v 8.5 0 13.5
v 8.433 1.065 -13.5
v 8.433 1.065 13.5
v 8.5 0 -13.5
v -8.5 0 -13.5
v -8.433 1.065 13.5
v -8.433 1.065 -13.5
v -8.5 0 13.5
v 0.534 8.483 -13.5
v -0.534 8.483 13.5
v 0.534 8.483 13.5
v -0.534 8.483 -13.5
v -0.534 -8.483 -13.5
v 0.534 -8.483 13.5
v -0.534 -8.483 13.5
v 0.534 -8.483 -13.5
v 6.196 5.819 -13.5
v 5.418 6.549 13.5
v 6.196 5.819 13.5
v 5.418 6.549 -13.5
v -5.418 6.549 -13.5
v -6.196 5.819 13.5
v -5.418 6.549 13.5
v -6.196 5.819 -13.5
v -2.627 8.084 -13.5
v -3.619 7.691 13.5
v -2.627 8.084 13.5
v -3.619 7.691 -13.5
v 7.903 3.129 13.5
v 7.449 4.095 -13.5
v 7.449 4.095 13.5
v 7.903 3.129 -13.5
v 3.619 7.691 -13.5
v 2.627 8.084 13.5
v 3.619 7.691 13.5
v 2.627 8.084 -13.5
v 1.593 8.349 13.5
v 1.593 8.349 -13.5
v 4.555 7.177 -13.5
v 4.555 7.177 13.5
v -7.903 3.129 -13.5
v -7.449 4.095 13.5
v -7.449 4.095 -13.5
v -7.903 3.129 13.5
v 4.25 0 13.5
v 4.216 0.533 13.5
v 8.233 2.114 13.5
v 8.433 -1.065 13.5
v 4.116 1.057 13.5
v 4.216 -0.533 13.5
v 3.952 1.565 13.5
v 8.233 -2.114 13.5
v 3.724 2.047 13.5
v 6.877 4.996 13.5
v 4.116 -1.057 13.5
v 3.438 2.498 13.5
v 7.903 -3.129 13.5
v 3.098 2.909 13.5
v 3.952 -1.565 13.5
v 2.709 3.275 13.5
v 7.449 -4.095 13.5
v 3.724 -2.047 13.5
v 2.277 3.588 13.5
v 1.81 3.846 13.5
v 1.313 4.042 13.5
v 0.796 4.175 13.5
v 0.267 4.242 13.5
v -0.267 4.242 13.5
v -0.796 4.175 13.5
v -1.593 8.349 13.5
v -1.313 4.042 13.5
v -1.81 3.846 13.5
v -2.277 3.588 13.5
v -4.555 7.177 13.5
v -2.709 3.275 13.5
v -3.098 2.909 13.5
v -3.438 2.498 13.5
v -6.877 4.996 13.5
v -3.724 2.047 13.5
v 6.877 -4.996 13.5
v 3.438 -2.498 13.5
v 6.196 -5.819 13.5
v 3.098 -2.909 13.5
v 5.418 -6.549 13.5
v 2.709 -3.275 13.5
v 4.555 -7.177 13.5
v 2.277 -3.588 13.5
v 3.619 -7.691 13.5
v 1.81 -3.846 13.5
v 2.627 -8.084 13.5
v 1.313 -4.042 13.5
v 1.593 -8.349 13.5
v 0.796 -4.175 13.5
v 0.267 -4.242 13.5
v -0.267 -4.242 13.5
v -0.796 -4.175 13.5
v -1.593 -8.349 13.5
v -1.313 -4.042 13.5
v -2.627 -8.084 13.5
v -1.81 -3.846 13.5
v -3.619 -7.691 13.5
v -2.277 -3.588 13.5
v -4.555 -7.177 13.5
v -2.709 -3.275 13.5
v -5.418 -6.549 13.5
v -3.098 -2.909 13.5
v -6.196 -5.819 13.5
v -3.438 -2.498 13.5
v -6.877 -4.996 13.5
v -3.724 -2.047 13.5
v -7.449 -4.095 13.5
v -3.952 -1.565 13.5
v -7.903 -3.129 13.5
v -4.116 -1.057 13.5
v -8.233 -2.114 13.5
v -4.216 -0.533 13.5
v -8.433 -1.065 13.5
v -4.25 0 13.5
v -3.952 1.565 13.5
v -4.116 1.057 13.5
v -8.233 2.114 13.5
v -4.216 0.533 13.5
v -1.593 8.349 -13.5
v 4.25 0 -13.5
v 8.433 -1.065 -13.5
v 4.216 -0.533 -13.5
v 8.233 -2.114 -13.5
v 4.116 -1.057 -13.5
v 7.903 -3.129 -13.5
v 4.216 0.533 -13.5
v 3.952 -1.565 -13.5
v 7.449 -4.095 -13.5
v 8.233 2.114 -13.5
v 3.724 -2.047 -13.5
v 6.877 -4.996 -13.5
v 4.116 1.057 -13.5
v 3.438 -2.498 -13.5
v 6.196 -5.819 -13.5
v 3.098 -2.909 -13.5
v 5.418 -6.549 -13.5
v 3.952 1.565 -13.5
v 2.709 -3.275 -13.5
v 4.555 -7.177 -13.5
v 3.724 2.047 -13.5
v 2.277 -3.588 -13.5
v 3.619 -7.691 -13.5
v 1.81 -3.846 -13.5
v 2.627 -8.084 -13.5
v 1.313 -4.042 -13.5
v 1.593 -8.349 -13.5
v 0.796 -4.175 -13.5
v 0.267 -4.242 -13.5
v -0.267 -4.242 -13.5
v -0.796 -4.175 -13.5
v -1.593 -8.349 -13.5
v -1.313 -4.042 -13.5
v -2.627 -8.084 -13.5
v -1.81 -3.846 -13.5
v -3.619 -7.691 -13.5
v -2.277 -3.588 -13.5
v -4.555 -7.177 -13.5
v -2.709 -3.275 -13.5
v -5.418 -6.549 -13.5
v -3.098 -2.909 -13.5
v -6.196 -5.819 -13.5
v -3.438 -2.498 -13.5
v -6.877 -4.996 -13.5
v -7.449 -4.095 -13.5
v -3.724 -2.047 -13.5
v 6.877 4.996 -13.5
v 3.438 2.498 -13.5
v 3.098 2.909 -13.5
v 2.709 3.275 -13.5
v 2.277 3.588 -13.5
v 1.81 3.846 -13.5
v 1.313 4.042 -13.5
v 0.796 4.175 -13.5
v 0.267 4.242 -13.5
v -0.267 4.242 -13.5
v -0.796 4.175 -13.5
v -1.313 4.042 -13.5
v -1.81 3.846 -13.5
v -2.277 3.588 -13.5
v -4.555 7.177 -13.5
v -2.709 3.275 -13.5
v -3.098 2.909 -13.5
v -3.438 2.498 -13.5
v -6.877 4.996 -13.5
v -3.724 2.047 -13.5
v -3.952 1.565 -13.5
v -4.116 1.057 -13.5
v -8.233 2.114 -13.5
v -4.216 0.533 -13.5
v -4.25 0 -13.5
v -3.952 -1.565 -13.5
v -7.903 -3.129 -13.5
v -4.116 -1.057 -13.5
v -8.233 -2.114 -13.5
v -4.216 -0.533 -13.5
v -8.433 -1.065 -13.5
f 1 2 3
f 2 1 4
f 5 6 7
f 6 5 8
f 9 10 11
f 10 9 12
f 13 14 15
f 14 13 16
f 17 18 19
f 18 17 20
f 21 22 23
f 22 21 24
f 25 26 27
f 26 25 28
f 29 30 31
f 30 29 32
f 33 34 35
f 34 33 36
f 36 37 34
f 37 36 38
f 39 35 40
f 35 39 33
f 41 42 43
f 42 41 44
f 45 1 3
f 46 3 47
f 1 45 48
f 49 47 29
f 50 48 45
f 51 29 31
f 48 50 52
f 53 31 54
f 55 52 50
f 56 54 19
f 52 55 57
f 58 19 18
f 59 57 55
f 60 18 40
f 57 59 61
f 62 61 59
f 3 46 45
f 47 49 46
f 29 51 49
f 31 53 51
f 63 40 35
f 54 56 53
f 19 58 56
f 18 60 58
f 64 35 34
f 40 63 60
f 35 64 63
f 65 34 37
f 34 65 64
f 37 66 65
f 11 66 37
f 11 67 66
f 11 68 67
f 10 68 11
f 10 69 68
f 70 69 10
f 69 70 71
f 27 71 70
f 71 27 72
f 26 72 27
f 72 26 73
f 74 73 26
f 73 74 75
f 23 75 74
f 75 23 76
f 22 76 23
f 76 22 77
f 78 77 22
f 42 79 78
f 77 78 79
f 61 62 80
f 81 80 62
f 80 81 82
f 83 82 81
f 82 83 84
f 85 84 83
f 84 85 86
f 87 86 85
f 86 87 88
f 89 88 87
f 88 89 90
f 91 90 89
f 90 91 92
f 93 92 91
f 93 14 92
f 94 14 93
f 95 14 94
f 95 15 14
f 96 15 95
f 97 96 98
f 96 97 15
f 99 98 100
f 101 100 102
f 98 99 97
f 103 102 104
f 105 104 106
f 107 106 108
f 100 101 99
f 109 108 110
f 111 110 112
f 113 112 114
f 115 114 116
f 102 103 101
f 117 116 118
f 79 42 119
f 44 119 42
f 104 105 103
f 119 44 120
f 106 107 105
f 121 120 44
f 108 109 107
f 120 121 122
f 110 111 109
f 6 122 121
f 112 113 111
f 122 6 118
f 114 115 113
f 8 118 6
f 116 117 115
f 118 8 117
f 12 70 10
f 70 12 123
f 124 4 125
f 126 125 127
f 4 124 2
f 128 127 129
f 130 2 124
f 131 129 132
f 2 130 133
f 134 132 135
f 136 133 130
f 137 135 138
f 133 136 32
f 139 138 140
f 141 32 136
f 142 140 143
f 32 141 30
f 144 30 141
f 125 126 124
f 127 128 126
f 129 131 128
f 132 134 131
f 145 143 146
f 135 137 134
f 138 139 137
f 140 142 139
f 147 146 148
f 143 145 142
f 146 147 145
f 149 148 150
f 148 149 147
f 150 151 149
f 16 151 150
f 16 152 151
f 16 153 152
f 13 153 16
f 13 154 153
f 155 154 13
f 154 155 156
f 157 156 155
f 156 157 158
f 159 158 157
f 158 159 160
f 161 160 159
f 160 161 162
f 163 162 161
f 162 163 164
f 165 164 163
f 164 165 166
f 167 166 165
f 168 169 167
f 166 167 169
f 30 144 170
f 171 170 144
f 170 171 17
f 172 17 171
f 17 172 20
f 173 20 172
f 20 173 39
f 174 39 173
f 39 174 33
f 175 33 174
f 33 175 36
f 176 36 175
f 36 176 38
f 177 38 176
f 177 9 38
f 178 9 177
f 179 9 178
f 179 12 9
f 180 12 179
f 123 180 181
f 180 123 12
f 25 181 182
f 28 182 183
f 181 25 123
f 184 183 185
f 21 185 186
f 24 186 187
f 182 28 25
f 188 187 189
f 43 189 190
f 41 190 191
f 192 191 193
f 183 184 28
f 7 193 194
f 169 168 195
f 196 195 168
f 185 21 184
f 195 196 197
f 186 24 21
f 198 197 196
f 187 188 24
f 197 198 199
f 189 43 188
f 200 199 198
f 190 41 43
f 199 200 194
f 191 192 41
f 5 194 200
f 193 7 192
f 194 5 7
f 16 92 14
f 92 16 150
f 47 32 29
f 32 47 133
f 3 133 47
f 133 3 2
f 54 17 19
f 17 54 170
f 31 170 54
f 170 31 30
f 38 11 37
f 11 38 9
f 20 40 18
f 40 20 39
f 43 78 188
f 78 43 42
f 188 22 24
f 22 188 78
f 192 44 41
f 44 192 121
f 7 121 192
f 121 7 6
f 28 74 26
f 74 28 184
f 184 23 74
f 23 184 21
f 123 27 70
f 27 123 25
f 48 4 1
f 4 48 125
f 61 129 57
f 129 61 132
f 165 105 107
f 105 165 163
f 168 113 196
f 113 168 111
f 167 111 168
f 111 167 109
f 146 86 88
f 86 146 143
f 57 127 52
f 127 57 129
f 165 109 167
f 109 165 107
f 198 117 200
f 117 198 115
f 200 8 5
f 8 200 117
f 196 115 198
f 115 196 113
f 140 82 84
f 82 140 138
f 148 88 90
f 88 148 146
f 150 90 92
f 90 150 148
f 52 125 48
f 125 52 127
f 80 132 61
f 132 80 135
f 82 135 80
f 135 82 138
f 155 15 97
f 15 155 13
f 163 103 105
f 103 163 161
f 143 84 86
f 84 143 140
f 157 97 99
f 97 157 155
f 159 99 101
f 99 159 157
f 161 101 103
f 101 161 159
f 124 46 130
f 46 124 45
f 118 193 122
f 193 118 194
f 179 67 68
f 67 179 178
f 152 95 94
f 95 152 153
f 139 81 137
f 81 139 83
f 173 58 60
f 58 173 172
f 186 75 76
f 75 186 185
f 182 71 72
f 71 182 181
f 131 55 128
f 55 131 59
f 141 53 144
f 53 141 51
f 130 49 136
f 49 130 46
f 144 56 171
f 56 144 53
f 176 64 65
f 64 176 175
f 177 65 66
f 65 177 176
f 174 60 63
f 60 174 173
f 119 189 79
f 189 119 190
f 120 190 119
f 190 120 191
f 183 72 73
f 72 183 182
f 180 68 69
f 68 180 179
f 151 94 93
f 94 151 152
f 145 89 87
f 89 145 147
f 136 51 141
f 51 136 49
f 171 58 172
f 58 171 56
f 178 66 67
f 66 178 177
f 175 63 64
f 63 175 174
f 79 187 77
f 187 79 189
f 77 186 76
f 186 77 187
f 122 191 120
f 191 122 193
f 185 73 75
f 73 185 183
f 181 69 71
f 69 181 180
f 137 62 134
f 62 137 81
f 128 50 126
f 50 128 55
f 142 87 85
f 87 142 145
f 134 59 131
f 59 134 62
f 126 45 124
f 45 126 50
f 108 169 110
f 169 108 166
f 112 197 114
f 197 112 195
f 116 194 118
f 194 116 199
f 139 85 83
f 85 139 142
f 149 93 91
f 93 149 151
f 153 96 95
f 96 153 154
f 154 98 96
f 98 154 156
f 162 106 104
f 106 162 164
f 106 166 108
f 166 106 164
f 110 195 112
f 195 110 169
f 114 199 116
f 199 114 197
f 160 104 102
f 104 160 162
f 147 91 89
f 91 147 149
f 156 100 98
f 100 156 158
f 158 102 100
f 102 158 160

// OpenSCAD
$fn = 50;


difference() {
	union() {
		translate(v = [0, 0, -13.5000000000]) {
			cylinder(h = 27, r = 8.5000000000);
		}
	}
	union() {
		translate(v = [0, 0, -100.0000000000]) {
			cylinder(h = 200, r = 4.2500000000);
		}
	}
}
